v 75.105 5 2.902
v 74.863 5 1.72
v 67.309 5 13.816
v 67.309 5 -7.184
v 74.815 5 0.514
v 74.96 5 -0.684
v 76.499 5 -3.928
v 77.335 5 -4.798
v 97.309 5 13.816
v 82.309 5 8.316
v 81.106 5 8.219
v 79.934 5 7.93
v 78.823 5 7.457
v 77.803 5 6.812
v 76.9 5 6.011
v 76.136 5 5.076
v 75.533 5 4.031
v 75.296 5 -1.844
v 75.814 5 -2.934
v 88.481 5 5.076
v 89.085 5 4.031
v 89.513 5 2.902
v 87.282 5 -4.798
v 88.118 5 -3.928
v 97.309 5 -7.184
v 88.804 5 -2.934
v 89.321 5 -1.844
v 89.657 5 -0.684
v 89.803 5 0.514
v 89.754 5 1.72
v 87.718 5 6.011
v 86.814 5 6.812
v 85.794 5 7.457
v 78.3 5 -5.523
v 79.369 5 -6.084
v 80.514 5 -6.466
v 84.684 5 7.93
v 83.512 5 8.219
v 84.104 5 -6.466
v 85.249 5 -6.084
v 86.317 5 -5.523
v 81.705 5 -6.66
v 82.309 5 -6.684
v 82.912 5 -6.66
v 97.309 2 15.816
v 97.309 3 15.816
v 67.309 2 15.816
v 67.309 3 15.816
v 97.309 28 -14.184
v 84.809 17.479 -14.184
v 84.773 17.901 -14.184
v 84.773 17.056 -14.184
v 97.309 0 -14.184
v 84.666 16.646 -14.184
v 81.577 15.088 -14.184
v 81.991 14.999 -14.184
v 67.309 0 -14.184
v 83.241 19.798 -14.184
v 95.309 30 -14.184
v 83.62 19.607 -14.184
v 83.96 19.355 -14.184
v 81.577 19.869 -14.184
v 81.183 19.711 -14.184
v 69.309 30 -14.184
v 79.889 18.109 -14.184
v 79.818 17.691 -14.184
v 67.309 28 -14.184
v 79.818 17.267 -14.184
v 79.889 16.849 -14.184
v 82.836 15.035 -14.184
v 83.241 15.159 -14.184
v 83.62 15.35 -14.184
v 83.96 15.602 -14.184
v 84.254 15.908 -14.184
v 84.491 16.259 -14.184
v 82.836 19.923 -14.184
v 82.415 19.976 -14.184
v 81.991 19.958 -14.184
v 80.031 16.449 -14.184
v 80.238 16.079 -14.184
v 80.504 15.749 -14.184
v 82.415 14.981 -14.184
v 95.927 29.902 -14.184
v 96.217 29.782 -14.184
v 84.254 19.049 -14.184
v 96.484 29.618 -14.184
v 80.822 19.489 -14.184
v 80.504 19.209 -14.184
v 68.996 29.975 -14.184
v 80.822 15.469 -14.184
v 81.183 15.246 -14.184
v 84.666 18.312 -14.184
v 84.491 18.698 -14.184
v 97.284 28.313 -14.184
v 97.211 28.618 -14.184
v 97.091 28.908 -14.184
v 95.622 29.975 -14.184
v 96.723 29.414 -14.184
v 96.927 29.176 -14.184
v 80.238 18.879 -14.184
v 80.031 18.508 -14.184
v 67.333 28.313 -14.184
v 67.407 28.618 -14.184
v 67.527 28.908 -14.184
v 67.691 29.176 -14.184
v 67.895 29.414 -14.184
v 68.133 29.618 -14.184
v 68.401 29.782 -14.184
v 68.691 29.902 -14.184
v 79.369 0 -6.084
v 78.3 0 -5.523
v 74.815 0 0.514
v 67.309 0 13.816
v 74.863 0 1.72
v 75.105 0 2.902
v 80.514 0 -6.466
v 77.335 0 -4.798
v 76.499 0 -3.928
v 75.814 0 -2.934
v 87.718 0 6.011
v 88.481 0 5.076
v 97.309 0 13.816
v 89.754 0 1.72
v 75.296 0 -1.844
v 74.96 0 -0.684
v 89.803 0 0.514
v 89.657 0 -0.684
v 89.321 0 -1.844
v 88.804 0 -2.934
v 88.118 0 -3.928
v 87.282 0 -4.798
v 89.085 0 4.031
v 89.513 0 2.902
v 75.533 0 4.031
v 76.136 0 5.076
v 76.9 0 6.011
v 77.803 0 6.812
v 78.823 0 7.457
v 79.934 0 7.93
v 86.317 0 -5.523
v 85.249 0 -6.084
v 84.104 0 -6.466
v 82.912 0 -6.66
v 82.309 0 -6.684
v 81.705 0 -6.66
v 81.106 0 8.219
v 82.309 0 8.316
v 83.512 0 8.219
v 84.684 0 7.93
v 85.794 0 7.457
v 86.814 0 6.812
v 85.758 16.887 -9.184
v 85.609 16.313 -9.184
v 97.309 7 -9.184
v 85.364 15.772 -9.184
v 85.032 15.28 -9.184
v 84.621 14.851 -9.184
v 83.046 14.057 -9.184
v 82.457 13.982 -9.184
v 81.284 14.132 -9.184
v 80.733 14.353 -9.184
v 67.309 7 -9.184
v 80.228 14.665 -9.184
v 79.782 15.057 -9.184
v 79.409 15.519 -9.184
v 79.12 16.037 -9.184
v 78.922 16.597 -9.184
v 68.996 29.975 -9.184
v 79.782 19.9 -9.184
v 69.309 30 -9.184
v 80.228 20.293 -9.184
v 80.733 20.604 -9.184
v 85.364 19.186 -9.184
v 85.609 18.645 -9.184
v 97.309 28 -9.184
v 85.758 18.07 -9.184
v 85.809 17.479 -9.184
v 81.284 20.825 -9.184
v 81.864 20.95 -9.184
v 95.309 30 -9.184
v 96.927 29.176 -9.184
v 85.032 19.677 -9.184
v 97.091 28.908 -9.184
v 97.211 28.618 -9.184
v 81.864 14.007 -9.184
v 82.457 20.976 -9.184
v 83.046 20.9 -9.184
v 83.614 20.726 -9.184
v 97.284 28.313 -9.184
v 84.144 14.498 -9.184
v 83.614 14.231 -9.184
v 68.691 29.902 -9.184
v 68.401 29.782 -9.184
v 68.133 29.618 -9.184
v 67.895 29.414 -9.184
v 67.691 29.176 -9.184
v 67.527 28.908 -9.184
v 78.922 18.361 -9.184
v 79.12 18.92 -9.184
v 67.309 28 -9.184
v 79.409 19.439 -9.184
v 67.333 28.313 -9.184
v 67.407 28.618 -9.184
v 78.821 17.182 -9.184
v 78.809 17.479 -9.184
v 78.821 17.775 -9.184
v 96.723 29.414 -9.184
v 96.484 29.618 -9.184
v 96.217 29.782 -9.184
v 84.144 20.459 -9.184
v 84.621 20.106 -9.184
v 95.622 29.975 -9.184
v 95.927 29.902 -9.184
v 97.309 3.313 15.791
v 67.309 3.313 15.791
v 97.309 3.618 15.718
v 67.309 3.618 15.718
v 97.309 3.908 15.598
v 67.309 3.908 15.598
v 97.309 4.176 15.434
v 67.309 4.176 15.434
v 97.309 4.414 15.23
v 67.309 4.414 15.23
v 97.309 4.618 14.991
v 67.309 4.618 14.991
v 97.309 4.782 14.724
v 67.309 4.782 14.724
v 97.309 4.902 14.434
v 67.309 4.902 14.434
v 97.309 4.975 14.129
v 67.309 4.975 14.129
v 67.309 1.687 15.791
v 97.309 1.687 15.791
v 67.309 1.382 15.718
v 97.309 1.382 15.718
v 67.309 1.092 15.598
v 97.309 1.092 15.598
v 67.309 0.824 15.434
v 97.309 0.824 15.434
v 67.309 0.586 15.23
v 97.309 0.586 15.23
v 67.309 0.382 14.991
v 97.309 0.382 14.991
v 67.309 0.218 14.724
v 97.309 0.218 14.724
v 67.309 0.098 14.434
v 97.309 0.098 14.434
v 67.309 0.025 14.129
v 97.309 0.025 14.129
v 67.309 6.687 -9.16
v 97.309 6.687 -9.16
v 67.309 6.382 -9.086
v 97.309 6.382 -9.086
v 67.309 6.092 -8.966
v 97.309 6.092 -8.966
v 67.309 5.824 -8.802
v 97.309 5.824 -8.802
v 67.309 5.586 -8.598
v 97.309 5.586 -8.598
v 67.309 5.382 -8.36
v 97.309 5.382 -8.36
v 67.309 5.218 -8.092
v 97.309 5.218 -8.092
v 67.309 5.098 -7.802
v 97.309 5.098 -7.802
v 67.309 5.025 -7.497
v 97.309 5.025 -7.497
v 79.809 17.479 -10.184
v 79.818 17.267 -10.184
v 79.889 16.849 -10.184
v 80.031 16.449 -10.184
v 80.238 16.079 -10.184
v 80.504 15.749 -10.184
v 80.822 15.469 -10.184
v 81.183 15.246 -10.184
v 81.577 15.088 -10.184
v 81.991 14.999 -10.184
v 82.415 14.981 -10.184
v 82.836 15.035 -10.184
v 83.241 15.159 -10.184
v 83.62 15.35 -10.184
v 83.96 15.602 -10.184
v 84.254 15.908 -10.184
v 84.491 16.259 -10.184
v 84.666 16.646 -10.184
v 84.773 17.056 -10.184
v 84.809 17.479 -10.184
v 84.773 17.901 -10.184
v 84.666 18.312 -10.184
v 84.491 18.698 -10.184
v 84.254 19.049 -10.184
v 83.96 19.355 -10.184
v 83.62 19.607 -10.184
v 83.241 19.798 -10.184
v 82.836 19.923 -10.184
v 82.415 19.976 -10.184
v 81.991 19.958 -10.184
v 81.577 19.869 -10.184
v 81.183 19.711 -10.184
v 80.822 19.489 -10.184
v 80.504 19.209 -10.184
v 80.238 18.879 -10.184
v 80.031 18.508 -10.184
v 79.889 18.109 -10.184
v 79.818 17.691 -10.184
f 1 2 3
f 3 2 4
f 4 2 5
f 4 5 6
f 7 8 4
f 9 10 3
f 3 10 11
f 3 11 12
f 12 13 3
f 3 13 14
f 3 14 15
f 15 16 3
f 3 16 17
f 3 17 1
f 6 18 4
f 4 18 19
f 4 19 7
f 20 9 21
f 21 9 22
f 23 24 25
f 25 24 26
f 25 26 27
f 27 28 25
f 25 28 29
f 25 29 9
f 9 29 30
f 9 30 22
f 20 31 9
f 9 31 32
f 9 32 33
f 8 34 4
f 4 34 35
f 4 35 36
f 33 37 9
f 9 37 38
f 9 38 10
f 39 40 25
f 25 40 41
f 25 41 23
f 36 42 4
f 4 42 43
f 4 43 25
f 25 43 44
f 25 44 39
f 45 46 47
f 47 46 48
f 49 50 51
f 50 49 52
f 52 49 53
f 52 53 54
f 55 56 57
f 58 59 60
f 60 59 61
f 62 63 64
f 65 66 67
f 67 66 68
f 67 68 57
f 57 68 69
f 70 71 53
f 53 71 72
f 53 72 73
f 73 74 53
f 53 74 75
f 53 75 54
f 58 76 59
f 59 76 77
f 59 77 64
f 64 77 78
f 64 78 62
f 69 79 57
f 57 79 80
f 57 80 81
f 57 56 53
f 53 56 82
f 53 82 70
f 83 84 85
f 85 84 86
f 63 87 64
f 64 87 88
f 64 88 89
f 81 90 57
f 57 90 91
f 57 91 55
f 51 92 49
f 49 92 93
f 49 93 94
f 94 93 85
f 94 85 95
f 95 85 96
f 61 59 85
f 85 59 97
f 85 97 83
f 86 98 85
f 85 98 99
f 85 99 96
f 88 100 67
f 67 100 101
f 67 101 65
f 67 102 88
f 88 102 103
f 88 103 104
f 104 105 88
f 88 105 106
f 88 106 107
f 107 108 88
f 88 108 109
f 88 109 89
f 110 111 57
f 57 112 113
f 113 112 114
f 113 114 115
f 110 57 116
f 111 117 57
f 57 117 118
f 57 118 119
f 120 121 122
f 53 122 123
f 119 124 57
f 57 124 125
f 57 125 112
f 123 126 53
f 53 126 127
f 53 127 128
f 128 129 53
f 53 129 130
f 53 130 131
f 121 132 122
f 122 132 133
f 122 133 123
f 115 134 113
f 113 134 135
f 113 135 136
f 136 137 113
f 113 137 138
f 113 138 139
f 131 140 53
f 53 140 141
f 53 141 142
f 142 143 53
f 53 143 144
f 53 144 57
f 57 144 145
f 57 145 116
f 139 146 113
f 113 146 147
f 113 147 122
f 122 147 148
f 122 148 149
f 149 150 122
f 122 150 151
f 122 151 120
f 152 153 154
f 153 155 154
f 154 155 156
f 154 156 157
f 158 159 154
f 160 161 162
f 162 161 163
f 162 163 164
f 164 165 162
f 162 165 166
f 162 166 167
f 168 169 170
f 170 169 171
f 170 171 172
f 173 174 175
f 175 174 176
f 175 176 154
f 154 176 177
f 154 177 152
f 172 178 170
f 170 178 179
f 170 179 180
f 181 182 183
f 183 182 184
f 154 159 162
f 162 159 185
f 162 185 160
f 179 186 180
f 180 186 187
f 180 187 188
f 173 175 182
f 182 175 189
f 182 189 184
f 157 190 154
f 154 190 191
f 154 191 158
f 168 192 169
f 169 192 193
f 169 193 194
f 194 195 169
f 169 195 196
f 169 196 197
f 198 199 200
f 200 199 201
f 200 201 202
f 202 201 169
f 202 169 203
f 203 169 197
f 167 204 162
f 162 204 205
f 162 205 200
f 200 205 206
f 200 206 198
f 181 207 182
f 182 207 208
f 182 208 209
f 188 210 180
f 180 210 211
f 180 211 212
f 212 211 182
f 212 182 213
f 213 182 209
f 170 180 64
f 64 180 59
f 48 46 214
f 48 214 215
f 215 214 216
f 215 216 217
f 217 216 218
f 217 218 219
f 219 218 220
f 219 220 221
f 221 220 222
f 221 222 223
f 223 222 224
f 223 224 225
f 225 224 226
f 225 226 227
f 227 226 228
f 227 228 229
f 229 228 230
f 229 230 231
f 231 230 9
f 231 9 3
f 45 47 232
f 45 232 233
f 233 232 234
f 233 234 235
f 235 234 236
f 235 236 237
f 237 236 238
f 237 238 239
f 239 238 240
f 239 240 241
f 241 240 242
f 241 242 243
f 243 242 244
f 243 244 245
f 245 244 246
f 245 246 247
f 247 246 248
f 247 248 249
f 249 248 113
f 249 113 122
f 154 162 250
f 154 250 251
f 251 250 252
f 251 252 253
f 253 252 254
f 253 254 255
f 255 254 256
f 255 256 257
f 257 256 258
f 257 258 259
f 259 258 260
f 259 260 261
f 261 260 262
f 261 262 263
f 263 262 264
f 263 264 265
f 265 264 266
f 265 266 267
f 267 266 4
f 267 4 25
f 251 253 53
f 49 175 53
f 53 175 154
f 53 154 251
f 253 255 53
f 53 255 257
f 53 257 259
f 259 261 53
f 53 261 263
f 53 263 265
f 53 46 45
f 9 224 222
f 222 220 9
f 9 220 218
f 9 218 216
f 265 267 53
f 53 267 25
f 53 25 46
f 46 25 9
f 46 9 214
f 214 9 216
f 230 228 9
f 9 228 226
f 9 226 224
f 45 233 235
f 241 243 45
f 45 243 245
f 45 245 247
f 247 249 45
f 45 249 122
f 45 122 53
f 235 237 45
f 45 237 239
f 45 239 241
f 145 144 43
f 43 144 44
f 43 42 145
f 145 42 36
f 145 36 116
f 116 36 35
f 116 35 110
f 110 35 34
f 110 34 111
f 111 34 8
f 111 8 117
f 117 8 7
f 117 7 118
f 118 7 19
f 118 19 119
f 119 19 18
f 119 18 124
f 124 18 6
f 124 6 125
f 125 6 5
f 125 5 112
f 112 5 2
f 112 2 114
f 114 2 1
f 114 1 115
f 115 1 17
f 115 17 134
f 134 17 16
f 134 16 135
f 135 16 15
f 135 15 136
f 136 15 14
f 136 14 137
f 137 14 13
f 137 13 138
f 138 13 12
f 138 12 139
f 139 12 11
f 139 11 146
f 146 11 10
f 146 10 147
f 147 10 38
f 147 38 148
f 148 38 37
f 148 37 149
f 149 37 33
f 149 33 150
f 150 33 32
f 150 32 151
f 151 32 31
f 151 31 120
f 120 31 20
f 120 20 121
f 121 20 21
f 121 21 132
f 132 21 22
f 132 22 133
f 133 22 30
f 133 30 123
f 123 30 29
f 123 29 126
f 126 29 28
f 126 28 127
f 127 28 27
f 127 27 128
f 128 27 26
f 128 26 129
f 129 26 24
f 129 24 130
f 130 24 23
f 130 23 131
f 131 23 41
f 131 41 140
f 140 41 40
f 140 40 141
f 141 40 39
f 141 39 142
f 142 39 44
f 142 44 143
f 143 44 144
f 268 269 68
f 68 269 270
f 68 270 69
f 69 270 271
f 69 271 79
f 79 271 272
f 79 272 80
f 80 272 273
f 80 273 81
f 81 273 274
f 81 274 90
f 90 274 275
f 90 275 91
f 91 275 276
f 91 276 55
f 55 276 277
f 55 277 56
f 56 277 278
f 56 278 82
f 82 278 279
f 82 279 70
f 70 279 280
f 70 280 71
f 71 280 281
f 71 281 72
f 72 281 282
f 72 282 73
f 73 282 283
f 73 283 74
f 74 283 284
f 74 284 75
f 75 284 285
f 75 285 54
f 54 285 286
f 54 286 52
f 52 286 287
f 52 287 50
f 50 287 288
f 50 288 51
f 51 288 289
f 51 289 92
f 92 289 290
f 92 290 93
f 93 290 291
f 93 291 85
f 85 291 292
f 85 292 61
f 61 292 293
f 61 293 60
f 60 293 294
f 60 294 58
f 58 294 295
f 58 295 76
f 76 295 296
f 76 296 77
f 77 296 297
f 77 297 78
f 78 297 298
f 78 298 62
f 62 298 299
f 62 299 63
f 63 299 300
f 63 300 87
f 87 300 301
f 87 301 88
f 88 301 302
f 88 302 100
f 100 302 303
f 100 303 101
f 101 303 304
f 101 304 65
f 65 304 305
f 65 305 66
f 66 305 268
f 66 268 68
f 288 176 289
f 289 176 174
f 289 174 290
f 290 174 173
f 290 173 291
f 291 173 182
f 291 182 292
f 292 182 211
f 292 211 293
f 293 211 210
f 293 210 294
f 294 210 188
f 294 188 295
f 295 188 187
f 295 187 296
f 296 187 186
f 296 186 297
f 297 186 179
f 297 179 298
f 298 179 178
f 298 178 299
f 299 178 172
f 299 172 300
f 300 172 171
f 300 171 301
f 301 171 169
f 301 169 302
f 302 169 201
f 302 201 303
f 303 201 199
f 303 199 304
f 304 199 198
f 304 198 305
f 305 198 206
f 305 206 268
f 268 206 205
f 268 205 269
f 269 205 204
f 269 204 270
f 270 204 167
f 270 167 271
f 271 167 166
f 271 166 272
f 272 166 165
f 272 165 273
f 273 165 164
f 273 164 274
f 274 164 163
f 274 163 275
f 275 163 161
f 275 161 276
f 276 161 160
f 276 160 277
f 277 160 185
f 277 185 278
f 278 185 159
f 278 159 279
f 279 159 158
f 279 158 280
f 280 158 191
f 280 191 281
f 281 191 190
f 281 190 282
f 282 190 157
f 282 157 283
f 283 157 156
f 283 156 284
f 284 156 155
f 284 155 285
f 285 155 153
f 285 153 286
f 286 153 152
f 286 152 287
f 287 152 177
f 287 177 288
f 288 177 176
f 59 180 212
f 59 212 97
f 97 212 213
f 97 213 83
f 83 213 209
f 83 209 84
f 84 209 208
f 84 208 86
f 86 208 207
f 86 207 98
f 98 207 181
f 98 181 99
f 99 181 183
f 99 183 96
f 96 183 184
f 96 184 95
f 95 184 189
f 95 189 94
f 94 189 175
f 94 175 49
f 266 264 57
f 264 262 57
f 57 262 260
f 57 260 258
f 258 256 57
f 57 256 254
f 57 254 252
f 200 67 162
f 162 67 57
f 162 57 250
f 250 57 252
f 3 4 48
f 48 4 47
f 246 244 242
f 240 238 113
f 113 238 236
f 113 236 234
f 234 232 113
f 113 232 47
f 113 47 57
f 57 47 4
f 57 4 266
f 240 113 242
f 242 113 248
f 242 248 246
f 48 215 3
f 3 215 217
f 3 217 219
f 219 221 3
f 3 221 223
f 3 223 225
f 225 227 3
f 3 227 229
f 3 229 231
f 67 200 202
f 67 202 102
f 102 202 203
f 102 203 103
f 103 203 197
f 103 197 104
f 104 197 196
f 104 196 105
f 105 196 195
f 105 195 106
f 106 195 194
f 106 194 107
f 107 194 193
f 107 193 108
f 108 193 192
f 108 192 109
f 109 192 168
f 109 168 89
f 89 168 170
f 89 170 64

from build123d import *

# Parameters (mm, degrees)
SKETCH1_W           = 150
SKETCH1_H           = 30
BOSS_EXTRUDE1_DEPTH = 5
SKETCH3_W           = 150
SKETCH3_H           = 5
BOSS_EXTRUDE2_DEPTH = 25
SKETCH6_R           = 7.5
SKETCH6_R_2         = 5
CUT_EXTRUDE2_DEPTH  = 25
SKETCH7_R           = 2.5
CUT_EXTRUDE3_DEPTH  = 25
CHAMFER1_SIZE       = 1
FILLET2_R           = 2
SKETCH8_W           = 43.274843737
SKETCH8_H           = 64.613346869
CUT_EXTRUDE4_DEPTH  = 120
FILLET3_R           = 2


with BuildPart() as part:
    # Sketch1 → Boss-Extrude1 (new body)
    with BuildSketch(Plane(origin=(0, 0, 0), x_dir=(1, 0, 0), z_dir=(0, 1, 0))):
        with Locations((22.308802864, -0.815715524)):
            Rectangle(SKETCH1_W, SKETCH1_H)
    extrude(amount=BOSS_EXTRUDE1_DEPTH)

    # Sketch3 → Boss-Extrude2 (add)
    with BuildSketch(Plane(origin=(0, 5, 0), x_dir=(1, 0, 0), z_dir=(0, 1, 0))):
        with Locations((22.308802864, 11.684284476)):
            Rectangle(SKETCH3_W, SKETCH3_H)
    extrude(amount=BOSS_EXTRUDE2_DEPTH)

    # Sketch6 → Cut-Extrude2 (cut)
    with BuildSketch(Plane(origin=(0, 5, 0), x_dir=(1, 0, 0), z_dir=(0, 1, 0))):
        with Locations(Location((82.308802864, -0.815715524, 0), (0, 0, 90))):
            Circle(SKETCH6_R)
        with Locations(Location((54.808802864, -8.315715524, 0), (0, 0, 90))):
            Circle(SKETCH6_R_2)
        with Locations(Location((29.808802864, -8.315715524, 0), (0, 0, 90))):
            Circle(SKETCH6_R_2)
        with Locations(Location((2.308802864, -8.315715524, 0), (0, 0, 90))):
            Circle(SKETCH6_R_2)
        with Locations(Location((-37.691197136, -8.315715524, 0), (0, 0, 90))):
            Circle(SKETCH6_R_2)
    extrude(amount=-CUT_EXTRUDE2_DEPTH, mode=Mode.SUBTRACT)

    # Sketch7 → Cut-Extrude3 (cut)
    with BuildSketch(Plane.XY.offset(-9.184284476)):
        with Locations((82.308802864, 17.478664245)):
            Circle(SKETCH7_R)
        with Locations((-37.691197136, 17.478664245)):
            Circle(SKETCH7_R)
        with Locations((22.308802864, 17.478664245)):
            Circle(SKETCH7_R)
    extrude(amount=-CUT_EXTRUDE3_DEPTH, mode=Mode.SUBTRACT)

    # Chamfer1
    chamfer1_edges = [part.edges().sort_by_distance(p)[0] for p in [
        (79.808802864, 17.478664245, -9.184284476),
        (-40.191197136, 17.478664245, -9.184284476),
        (19.808802864, 17.478664245, -9.184284476),
    ]]
    chamfer(chamfer1_edges, length=CHAMFER1_SIZE)

    # Fillet2
    fillet2_edges = [part.edges().sort_by_distance(p)[0] for p in [
        (22.308802864, 5, 15.815715524),
        (22.308802864, 0, 15.815715524),
        (22.308802864, 5, -9.184284476),
        (-52.691197136, 30, -11.684284476),
        (97.308802864, 30, -11.684284476),
    ]]
    fillet(fillet2_edges, radius=FILLET2_R)

    # Sketch8 → Cut-Extrude4 (cut)
    with BuildSketch(Plane.ZY.offset(52.691197136)):
        with Locations((-0.153926337, 8.461505149)):
            Rectangle(SKETCH8_W, SKETCH8_H)
    extrude(amount=-CUT_EXTRUDE4_DEPTH, mode=Mode.SUBTRACT)

    # Fillet3
    fillet3_edges = [part.edges().sort_by_distance(p)[0] for p in [
        (67.308802864, 30, -11.684284476),
    ]]
    fillet(fillet3_edges, radius=FILLET3_R)


solid = part.part
